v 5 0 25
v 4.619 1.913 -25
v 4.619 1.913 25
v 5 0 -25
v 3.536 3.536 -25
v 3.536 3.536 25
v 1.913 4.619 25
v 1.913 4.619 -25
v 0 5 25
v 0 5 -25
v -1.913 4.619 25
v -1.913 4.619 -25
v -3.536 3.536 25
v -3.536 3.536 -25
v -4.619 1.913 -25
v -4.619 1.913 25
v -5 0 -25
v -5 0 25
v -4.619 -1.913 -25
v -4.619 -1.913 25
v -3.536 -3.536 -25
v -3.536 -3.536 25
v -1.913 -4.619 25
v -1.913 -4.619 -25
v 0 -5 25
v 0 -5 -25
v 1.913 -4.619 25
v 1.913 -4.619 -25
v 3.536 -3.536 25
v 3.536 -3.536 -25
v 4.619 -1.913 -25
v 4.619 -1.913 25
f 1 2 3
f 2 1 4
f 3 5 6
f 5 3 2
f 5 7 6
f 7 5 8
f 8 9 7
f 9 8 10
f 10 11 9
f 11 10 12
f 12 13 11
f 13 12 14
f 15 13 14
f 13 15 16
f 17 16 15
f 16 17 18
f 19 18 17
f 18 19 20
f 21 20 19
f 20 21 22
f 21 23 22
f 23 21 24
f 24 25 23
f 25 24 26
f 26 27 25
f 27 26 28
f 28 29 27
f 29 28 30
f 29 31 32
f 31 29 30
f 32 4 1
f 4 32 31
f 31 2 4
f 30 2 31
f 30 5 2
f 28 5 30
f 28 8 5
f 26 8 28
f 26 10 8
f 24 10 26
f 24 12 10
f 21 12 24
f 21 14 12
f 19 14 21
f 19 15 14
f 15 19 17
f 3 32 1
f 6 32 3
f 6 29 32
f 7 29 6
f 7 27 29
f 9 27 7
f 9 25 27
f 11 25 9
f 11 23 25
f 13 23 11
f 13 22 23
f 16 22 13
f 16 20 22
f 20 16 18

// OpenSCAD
// Parameters for the central shaft
central_shaft_length = 50; // Length of the central shaft
central_shaft_diameter = 10; // Diameter of the central shaft

// Function to create a cylindrical shaft
module central_shaft() {
    cylinder(h = central_shaft_length, d = central_shaft_diameter, center = true);
}

// Render the central shaft
translate([0, 0, 0]) {
    central_shaft();
}
